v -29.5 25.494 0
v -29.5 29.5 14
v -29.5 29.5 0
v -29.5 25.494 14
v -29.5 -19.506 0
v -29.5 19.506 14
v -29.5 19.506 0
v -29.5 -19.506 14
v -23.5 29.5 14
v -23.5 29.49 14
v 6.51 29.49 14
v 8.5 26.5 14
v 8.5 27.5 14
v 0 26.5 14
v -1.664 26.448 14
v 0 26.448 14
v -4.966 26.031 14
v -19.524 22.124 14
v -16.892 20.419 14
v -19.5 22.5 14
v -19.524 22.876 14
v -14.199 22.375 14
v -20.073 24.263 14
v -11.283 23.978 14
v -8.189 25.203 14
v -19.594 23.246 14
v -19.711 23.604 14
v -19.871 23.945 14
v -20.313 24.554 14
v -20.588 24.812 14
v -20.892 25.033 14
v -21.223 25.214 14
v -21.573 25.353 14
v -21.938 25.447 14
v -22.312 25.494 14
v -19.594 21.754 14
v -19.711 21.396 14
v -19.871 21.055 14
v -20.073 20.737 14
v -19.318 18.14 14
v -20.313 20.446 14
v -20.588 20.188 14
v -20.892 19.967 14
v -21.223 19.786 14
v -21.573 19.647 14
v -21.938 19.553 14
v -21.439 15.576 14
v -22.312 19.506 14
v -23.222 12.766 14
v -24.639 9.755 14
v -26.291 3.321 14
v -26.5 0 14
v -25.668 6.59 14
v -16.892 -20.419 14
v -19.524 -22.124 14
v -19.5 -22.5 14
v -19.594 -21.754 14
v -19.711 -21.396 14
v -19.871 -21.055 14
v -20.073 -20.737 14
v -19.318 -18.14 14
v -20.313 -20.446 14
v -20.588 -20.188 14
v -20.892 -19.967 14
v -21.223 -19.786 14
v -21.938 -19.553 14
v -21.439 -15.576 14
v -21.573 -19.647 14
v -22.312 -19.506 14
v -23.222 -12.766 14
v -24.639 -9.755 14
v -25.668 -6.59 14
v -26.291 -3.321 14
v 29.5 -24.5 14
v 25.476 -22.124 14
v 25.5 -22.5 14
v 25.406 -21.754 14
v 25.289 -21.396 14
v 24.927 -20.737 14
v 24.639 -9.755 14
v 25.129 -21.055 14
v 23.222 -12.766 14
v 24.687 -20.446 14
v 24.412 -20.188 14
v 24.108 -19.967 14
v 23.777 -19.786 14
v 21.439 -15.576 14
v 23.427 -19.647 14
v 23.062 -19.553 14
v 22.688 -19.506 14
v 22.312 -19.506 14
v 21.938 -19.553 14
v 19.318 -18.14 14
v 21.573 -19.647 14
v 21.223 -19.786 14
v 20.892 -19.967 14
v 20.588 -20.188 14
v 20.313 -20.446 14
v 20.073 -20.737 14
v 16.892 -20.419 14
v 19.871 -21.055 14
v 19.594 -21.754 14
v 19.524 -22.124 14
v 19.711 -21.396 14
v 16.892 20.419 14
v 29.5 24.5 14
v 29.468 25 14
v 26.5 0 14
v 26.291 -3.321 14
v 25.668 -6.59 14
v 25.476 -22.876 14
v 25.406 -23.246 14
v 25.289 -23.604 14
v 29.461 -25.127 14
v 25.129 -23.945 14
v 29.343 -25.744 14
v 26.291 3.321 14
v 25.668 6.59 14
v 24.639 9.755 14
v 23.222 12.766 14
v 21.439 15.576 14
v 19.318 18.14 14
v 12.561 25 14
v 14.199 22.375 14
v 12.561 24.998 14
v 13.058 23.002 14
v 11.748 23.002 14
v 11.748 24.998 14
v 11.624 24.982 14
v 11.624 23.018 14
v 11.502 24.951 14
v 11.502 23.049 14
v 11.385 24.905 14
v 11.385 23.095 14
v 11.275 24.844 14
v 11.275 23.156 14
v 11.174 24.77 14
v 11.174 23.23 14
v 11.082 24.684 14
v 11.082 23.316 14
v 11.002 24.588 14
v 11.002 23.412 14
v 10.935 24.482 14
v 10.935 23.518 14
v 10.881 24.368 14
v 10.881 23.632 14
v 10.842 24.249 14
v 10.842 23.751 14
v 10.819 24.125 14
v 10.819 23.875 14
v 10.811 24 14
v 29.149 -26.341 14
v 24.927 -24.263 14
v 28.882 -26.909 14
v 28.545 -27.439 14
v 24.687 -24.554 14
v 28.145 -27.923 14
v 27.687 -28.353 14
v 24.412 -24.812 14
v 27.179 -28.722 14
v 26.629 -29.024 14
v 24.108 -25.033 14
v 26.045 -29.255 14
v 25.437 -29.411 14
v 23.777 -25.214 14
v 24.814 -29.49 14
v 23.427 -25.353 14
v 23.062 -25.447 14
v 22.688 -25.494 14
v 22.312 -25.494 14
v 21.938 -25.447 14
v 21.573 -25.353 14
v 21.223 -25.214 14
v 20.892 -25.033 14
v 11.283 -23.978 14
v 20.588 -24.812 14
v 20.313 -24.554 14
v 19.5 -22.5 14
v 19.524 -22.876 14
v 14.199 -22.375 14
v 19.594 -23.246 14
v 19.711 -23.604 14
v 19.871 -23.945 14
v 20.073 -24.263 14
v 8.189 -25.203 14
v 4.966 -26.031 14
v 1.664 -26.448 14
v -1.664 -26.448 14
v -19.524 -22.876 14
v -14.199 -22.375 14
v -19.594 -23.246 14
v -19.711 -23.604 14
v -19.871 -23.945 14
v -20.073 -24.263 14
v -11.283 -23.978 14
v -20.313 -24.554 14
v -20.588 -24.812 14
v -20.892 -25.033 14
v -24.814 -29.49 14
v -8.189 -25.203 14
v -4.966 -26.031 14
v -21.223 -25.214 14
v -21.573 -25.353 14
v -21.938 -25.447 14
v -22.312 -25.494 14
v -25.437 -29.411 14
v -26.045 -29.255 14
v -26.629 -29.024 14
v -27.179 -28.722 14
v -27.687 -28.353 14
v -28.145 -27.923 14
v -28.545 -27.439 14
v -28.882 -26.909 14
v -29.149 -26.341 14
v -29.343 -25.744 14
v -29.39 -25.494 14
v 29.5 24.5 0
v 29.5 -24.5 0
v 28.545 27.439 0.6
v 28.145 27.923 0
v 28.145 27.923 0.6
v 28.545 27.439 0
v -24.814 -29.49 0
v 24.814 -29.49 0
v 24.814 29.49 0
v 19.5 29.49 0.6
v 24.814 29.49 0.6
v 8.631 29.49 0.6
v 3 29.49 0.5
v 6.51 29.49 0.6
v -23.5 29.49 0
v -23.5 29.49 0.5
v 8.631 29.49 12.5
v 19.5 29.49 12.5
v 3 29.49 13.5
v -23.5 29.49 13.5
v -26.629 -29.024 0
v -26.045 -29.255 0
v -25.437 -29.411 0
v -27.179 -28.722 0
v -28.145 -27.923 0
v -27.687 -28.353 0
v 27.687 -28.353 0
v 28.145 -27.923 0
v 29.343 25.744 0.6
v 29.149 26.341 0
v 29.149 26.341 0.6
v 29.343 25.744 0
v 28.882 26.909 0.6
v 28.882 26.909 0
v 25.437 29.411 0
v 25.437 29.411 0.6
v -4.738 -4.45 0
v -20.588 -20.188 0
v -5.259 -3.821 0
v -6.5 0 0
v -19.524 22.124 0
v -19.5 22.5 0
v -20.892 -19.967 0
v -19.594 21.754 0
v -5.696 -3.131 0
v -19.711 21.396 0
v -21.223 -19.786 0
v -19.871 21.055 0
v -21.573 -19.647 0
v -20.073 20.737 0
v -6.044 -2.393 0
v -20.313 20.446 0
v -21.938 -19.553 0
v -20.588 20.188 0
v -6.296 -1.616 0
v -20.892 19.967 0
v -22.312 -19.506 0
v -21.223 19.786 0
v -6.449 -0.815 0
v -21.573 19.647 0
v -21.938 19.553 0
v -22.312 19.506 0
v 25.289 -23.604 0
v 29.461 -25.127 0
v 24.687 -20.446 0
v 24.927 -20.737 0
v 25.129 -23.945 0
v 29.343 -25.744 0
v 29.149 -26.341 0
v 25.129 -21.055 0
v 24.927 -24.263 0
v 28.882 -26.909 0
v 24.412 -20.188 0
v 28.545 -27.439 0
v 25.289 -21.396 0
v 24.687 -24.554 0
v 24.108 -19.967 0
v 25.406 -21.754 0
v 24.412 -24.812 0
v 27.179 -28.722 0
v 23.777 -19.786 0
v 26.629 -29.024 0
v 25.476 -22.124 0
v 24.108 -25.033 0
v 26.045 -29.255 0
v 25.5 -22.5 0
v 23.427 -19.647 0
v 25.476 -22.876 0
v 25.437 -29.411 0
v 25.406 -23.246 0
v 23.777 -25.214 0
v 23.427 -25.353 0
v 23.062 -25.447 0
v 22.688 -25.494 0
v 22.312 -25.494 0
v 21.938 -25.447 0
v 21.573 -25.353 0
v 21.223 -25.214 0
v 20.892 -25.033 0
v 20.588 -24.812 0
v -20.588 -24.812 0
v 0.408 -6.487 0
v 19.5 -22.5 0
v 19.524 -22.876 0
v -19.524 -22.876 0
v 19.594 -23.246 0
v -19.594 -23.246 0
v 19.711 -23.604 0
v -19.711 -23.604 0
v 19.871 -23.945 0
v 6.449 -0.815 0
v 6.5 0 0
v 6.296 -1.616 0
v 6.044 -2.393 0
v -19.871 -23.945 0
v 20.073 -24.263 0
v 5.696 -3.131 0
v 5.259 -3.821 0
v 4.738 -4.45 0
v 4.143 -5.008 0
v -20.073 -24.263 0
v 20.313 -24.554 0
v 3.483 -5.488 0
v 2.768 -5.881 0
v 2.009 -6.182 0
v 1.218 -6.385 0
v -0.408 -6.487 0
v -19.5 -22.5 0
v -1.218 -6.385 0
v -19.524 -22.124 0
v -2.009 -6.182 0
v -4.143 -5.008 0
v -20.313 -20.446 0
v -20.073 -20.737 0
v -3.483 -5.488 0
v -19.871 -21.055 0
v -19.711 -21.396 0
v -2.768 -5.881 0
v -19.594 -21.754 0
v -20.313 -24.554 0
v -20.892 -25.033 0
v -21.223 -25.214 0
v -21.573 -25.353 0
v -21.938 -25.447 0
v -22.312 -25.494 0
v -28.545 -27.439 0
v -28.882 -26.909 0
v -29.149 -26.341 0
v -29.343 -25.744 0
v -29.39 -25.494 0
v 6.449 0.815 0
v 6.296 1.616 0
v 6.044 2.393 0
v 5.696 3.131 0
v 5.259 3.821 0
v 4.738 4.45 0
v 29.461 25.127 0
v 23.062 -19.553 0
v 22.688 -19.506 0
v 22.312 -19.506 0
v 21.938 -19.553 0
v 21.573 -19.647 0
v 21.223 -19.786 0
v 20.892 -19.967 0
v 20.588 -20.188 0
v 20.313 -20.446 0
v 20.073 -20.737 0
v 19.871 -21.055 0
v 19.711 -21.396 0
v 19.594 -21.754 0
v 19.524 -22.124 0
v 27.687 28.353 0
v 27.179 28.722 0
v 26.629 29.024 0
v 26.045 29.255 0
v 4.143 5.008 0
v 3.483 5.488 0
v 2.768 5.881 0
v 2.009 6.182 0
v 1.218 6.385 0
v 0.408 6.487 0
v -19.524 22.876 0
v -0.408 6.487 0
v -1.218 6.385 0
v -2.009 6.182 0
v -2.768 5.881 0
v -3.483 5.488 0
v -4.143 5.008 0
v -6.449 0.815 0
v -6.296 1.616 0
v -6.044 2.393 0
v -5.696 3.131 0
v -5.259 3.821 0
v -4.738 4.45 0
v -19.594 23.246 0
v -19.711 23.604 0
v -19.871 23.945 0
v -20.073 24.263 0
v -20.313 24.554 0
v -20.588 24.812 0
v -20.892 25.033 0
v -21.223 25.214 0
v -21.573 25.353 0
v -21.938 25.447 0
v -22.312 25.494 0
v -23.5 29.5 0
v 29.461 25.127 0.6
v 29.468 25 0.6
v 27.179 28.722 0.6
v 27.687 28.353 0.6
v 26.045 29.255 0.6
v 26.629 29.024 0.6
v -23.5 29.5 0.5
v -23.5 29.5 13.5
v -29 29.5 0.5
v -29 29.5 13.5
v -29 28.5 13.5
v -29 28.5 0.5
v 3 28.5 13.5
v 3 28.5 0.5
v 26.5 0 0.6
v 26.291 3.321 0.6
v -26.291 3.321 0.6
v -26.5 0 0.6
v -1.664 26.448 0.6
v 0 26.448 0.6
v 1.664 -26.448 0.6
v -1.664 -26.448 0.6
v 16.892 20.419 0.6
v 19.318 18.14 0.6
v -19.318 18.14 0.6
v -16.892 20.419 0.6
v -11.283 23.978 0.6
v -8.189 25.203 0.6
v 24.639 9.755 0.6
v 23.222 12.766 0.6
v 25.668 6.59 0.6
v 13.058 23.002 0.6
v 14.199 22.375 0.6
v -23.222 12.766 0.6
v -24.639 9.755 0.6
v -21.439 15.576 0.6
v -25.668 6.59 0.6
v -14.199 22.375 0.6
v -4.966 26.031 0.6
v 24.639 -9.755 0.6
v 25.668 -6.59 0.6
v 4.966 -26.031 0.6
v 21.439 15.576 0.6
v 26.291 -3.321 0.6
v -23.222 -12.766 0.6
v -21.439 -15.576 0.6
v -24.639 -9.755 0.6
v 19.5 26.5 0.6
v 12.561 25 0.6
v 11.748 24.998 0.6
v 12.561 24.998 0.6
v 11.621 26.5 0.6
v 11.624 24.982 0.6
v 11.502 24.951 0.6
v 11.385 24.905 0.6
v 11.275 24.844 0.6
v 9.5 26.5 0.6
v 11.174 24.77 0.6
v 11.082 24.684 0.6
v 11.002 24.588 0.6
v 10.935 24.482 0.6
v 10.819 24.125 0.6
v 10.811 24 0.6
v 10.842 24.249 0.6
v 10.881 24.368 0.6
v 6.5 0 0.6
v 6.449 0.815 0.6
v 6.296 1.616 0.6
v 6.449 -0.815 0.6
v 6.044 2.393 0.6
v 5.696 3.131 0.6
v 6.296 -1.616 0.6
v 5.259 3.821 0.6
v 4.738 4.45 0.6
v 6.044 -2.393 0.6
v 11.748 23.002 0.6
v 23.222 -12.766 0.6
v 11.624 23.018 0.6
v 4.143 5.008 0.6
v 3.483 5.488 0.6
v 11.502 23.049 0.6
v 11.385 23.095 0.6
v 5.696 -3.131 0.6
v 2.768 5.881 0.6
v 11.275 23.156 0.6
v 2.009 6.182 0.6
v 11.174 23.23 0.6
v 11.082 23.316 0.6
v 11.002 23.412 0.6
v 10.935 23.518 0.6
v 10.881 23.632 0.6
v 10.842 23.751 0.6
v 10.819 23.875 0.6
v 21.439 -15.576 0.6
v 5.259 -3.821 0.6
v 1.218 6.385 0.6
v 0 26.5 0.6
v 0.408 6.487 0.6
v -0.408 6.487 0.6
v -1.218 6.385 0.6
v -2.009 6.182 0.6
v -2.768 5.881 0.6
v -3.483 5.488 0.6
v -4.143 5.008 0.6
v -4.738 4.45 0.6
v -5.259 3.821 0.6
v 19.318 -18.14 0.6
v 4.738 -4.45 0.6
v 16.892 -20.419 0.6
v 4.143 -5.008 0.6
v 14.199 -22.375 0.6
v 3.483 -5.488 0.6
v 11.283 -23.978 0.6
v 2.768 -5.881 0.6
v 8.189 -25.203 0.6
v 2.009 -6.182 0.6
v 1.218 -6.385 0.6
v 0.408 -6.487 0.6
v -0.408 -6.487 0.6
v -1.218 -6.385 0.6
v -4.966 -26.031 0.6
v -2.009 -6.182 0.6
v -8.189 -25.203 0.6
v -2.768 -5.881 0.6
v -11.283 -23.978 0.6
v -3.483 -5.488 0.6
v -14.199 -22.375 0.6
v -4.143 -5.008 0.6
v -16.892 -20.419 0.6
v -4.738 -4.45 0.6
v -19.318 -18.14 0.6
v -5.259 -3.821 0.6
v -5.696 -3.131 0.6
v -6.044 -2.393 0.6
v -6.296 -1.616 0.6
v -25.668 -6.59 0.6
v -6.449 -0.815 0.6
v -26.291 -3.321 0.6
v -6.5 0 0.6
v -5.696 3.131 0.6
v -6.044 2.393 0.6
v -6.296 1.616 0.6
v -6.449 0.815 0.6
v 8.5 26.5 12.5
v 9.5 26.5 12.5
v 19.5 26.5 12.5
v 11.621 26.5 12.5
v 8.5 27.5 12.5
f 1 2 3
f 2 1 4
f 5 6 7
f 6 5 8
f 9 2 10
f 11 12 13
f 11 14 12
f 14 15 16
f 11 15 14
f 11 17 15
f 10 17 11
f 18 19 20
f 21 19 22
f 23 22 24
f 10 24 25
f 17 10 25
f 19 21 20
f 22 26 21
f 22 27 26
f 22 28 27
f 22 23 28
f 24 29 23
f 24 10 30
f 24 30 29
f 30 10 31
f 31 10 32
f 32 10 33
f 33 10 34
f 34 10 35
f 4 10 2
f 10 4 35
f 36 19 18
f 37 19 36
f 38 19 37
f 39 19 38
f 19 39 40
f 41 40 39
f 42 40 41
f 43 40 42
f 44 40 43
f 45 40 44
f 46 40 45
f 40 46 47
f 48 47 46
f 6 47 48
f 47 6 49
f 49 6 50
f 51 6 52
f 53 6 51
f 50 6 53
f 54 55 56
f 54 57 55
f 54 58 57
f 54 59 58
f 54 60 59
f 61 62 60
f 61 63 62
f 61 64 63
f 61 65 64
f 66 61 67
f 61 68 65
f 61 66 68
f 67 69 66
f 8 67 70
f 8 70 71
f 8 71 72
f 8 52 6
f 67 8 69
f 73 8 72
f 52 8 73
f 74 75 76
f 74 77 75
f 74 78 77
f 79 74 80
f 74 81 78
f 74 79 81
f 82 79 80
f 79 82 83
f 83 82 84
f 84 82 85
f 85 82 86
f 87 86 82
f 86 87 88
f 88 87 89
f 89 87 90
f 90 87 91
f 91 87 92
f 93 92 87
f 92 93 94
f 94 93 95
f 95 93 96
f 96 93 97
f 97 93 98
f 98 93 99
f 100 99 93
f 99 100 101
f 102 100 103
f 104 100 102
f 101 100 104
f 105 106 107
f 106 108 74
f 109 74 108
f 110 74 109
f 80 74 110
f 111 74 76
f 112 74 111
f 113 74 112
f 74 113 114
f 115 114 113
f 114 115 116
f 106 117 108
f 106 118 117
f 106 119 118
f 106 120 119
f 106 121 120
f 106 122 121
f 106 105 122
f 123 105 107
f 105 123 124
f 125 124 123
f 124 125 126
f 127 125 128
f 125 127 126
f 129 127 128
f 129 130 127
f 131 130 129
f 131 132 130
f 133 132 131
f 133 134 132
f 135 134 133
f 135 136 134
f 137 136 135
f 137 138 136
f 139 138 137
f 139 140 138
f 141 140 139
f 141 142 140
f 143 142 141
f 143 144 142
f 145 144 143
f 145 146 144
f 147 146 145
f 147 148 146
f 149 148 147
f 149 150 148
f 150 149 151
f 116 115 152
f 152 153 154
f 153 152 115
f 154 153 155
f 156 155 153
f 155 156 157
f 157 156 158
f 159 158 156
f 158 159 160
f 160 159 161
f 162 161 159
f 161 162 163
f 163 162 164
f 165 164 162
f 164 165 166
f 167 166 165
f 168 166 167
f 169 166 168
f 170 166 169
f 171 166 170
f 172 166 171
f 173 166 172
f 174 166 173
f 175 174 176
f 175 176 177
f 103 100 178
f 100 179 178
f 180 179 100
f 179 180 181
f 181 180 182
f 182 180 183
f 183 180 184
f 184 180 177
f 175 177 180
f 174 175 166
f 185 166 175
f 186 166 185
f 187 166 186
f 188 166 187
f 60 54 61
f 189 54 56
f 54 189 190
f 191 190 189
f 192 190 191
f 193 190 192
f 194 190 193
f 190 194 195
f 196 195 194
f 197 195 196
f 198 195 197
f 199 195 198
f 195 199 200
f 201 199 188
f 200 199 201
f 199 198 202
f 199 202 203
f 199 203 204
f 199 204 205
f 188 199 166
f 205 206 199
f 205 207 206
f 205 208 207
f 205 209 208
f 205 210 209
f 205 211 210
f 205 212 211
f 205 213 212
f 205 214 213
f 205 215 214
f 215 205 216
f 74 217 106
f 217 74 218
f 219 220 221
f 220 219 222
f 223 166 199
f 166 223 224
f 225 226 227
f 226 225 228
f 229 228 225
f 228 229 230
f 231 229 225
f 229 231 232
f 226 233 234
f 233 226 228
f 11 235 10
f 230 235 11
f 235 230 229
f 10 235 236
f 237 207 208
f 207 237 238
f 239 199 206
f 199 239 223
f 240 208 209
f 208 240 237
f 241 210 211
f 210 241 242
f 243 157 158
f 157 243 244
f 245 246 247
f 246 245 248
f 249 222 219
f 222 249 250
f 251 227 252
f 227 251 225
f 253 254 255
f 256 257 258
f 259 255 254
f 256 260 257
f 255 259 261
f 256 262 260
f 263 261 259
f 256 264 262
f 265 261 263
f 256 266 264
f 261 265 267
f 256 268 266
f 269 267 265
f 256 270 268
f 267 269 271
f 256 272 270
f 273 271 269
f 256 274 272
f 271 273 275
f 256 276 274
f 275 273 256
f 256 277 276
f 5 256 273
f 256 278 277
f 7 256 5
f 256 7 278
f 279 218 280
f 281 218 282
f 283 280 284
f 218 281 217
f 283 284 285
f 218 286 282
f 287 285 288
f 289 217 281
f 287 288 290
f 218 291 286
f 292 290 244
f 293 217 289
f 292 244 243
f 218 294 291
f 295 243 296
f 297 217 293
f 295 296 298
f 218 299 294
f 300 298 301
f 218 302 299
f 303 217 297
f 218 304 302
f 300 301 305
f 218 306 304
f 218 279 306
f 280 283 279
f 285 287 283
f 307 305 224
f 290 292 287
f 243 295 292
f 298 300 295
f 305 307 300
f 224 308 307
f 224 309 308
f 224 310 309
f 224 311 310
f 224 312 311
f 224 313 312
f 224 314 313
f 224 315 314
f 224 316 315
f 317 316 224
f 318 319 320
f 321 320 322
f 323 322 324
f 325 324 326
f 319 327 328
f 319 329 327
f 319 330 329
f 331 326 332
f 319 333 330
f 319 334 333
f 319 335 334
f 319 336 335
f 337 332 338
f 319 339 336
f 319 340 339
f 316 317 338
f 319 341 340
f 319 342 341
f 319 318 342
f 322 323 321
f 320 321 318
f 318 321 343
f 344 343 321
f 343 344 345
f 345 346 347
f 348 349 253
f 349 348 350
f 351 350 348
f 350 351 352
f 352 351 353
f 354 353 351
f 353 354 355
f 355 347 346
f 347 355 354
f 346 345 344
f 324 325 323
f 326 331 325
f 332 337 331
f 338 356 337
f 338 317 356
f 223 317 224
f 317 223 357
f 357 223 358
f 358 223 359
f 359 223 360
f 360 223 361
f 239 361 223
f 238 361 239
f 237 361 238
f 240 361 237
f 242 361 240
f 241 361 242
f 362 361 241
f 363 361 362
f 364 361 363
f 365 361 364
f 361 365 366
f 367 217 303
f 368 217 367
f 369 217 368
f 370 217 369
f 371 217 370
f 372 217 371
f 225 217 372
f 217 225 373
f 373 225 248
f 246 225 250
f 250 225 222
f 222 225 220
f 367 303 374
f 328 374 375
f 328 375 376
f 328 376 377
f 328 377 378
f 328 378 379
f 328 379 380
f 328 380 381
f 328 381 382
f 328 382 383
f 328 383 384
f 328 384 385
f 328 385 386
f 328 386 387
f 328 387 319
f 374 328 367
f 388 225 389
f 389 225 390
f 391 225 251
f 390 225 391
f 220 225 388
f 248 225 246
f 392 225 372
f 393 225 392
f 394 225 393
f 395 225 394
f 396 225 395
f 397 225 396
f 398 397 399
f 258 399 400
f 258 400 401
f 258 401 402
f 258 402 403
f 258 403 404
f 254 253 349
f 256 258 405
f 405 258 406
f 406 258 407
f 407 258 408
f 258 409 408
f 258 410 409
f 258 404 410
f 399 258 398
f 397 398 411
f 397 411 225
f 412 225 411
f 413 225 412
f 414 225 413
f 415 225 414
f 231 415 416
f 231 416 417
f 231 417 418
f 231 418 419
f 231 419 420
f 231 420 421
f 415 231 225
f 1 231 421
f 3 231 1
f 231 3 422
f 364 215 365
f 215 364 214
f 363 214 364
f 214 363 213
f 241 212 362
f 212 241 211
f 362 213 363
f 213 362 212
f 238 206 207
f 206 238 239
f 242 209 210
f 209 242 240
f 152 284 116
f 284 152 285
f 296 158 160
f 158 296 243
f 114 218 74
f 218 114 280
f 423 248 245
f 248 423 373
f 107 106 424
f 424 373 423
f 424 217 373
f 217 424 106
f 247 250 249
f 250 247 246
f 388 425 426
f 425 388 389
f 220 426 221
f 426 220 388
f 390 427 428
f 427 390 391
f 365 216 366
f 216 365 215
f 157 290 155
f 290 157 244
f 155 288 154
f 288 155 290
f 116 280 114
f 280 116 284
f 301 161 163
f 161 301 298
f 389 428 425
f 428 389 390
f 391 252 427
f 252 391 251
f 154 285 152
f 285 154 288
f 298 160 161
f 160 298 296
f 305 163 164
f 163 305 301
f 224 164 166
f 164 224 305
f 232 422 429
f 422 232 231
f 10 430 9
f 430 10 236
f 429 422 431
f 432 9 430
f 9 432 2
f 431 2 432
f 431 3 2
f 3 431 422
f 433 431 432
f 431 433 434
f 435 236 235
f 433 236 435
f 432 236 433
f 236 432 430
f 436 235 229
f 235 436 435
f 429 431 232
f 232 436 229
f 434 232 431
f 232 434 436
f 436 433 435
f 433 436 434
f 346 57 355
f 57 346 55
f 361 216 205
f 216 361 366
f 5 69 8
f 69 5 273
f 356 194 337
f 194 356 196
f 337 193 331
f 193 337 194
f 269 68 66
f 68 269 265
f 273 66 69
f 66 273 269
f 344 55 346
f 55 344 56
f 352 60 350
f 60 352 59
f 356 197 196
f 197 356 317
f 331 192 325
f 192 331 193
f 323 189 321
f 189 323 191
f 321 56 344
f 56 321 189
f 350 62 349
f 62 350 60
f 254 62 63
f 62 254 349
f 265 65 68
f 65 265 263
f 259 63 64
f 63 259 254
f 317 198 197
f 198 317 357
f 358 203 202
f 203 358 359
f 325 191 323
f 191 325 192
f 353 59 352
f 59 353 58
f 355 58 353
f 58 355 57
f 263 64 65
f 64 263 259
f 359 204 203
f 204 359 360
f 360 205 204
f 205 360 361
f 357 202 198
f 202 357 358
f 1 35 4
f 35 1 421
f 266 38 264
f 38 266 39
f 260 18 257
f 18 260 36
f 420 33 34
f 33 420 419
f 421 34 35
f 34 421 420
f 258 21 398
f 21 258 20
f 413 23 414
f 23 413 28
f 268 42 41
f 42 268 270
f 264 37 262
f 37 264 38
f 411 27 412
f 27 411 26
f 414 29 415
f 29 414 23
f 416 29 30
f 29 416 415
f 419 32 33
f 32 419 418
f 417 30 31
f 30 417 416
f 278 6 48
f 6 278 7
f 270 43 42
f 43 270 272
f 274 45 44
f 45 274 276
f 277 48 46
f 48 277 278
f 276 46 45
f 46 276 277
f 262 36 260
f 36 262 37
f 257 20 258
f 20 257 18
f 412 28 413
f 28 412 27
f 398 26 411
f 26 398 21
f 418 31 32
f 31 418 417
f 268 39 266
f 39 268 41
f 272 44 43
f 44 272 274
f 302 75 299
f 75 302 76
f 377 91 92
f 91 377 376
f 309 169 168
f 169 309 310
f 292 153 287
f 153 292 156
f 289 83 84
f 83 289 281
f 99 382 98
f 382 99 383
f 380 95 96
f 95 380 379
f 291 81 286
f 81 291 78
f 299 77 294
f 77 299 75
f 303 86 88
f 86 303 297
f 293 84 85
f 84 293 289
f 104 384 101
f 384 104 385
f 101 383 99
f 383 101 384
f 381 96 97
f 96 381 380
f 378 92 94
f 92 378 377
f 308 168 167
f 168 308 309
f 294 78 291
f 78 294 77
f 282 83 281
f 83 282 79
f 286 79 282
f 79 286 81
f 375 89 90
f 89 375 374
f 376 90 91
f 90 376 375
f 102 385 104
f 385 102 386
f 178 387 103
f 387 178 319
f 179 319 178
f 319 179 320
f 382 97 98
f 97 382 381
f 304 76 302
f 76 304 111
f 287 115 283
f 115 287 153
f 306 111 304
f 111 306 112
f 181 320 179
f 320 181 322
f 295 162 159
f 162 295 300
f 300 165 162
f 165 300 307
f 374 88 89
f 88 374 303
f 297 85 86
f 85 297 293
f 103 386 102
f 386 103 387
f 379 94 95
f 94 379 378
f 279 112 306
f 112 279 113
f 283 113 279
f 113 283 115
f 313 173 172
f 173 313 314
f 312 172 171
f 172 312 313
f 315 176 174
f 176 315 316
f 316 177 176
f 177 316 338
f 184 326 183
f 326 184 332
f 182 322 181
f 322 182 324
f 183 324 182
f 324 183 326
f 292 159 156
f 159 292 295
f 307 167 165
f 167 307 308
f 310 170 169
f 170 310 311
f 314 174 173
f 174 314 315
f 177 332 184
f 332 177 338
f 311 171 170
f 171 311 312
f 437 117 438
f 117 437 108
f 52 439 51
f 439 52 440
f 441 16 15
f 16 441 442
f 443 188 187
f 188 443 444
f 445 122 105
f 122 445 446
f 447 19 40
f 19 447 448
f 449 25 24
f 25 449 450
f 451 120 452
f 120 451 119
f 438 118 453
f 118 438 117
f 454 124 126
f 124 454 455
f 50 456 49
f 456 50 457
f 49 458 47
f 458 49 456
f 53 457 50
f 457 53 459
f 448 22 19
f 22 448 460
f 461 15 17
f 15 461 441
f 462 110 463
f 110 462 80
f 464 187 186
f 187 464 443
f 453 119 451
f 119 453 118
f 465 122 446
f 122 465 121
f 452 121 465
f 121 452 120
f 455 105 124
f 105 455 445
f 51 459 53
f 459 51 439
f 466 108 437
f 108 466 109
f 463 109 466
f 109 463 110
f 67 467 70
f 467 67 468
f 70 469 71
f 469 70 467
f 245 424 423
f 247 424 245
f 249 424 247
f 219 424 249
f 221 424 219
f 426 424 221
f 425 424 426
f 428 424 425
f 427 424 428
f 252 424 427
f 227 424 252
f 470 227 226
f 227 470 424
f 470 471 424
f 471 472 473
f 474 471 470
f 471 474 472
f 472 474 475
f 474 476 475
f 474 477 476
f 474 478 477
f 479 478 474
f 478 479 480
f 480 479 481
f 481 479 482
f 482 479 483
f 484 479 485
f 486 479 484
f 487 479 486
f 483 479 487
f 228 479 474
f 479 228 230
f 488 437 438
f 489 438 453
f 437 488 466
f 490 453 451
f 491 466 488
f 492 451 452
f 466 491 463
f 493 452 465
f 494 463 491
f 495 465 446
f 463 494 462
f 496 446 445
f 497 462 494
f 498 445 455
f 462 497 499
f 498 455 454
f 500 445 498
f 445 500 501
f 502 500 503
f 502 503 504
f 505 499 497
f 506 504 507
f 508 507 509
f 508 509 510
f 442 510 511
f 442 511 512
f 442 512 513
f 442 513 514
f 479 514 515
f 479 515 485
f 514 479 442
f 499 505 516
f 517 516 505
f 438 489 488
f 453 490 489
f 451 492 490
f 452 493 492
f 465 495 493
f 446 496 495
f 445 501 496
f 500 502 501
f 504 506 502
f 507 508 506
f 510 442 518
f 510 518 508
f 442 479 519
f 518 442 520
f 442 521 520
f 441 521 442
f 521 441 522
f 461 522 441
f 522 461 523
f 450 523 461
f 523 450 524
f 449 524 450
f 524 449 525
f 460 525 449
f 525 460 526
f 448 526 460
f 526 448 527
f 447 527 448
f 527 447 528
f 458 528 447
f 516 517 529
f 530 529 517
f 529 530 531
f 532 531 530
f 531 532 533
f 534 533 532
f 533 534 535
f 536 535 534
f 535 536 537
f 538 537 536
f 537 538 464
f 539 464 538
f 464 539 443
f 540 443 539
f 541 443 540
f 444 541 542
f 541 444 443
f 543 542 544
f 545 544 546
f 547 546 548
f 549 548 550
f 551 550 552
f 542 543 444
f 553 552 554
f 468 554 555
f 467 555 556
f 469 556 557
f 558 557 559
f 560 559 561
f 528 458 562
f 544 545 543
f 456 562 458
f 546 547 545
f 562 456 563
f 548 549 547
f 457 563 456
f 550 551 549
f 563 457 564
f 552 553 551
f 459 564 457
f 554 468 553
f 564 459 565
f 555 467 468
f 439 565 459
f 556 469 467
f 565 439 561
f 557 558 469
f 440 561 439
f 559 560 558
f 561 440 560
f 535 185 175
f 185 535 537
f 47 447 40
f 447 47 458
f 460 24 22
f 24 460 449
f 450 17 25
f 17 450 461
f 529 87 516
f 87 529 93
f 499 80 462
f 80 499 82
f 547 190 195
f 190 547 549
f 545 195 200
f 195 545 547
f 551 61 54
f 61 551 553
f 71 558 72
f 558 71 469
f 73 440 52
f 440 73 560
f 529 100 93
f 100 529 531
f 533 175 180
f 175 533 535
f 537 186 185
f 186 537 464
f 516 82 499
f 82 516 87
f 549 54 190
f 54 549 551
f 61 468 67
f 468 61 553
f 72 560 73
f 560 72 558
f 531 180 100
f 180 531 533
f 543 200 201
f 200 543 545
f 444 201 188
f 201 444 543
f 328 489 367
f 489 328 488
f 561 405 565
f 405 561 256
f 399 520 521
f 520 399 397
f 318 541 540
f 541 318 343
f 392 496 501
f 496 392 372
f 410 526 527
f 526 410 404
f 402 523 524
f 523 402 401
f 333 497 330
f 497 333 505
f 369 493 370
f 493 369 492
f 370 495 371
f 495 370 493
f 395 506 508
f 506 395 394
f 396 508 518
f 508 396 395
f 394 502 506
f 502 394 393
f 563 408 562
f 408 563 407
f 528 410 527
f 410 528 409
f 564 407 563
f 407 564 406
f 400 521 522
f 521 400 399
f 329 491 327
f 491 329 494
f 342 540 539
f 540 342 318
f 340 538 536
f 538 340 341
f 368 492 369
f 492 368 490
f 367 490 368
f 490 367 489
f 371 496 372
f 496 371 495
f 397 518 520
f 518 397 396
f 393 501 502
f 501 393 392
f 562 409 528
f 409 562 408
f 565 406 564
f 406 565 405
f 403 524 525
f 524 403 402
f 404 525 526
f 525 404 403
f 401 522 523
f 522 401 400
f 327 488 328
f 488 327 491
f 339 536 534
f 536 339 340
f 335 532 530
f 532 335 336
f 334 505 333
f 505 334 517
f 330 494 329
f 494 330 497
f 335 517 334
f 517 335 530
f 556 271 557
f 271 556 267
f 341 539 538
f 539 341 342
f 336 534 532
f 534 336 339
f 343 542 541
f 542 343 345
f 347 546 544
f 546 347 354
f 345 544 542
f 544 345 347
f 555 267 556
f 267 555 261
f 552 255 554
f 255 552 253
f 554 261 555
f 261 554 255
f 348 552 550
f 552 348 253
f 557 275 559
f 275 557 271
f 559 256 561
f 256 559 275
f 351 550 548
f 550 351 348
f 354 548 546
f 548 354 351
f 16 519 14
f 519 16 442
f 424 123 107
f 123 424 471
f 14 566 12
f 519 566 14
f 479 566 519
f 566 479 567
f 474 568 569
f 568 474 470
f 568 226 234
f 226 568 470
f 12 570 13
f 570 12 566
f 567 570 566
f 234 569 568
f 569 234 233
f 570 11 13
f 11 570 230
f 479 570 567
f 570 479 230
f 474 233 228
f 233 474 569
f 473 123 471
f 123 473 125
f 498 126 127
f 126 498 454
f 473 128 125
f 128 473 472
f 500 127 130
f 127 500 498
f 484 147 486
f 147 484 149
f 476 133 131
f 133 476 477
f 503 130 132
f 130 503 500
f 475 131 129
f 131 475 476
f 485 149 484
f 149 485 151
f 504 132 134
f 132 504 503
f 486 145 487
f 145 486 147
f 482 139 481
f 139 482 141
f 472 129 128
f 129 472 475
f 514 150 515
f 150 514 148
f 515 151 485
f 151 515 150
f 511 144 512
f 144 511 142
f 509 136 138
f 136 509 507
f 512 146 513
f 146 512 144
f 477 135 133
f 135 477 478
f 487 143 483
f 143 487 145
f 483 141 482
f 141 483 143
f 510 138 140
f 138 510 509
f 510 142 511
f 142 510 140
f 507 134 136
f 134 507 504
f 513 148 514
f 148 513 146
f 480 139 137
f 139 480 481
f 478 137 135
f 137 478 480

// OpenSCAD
$fn = 50;


union() {
	difference() {
		union() {
			translate(v = [0, 0, 0]) {
				rotate(a = [0, 0, 0]) {
					hull() {
						translate(v = [-24.5000000000, 24.5000000000, 0]) {
							rotate(a = [0, 0, 0]) {
								translate(v = [0, 0, 0]) {
									rotate(a = [0, 0, 0]) {
										cylinder(h = 14, r = 5);
									}
								}
							}
						}
						translate(v = [24.5000000000, 24.5000000000, 0]) {
							rotate(a = [0, 0, 0]) {
								translate(v = [0, 0, 0]) {
									rotate(a = [0, 0, 0]) {
										cylinder(h = 14, r = 5);
									}
								}
							}
						}
						translate(v = [-24.5000000000, -24.5000000000, 0]) {
							rotate(a = [0, 0, 0]) {
								translate(v = [0, 0, 0]) {
									rotate(a = [0, 0, 0]) {
										cylinder(h = 14, r = 5);
									}
								}
							}
						}
						translate(v = [24.5000000000, -24.5000000000, 0]) {
							rotate(a = [0, 0, 0]) {
								translate(v = [0, 0, 0]) {
									rotate(a = [0, 0, 0]) {
										cylinder(h = 14, r = 5);
									}
								}
							}
						}
					}
				}
			}
			translate(v = [-29.5000000000, 23.5000000000, 0]) {
				rotate(a = [0, 0, 0]) {
					cube(size = [6, 6, 14]);
				}
			}
		}
		union() {
			#translate(v = [-29.0000000000, 28.5000000000, 0.5000000000]) {
				rotate(a = [0, 0, 0]) {
					cube(size = [32, 1, 13.0000000000]);
				}
			}
			translate(v = [-30.0000000000, -22.5000000000, -125]) {
				rotate(a = [0, 0, 0]) {
					hull() {
						translate(v = [7.5000000000, 0, 0]) {
							rotate(a = [0, 0, 0]) {
								translate(v = [0, 0, 0]) {
									rotate(a = [0, 0, 0]) {
										cylinder(h = 250, r = 3.0000000000);
									}
								}
							}
						}
						translate(v = [-7.5000000000, 0, 0]) {
							rotate(a = [0, 0, 0]) {
								translate(v = [0, 0, 0]) {
									rotate(a = [0, 0, 0]) {
										cylinder(h = 250, r = 3.0000000000);
									}
								}
							}
						}
					}
				}
			}
			translate(v = [-30.0000000000, 22.5000000000, -125]) {
				rotate(a = [0, 0, 0]) {
					hull() {
						translate(v = [7.5000000000, 0, 0]) {
							rotate(a = [0, 0, 0]) {
								translate(v = [0, 0, 0]) {
									rotate(a = [0, 0, 0]) {
										cylinder(h = 250, r = 3.0000000000);
									}
								}
							}
						}
						translate(v = [-7.5000000000, 0, 0]) {
							rotate(a = [0, 0, 0]) {
								translate(v = [0, 0, 0]) {
									rotate(a = [0, 0, 0]) {
										cylinder(h = 250, r = 3.0000000000);
									}
								}
							}
						}
					}
				}
			}
			translate(v = [22.5000000000, -22.5000000000, -125.0000000000]) {
				rotate(a = [0, 0, 0]) {
					cylinder(h = 250, r = 3.0000000000);
				}
			}
			translate(v = [0, 0, 0.6000000000]) {
				rotate(a = [0, 0, 0]) {
					cylinder(h = 16.4000000000, r = 26.5000000000);
				}
			}
			translate(v = [0, 0, -7.0000000000]) {
				rotate(a = [0, 0, 0]) {
					cylinder(h = 14, r = 6.5000000000);
				}
			}
			translate(v = [0.0000000000, 25.0000000000, 0.6000000000]) {
				rotate(a = [0, 0, 0]) {
					cube(size = [29.5000000000, 1.5000000000, 16.4000000000]);
				}
			}
			translate(v = [19.5000000000, 25.0000000000, 0.6000000000]) {
				rotate(a = [0, 0, 0]) {
					cube(size = [10, 4.5000000000, 16.4000000000]);
				}
			}
			translate(v = [8.5000000000, 25.0000000000, 12.5000000000]) {
				rotate(a = [0, 0, 0]) {
					cube(size = [21, 4.5000000000, 1.5000000000]);
				}
			}
			translate(v = [5.7500000000, 30.2500000000, 0.6000000000]) {
				rotate(a = [0, 0, -45]) {
					cube(size = [7.5000000000, 1.5000000000, 16.4000000000]);
				}
			}
			translate(v = [5.0610000000, 23.0000000000, 0.6000000000]) {
				rotate(a = [0, 0, 0]) {
					cube(size = [7.5000000000, 2, 13.4000000000]);
				}
			}
		}
	}
	union() {
		translate(v = [14.3110000000, 24.0000000000, 0]) {
			rotate(a = [0, 0, 0]) {
				hull() {
					translate(v = [2.5000000000, 0, 0]) {
						rotate(a = [0, 0, 0]) {
							#translate(v = [0, 0, 0]) {
								rotate(a = [0, 0, 0]) {
									cylinder(h = 14, r = 1.0000000000);
								}
							}
						}
					}
					translate(v = [-2.5000000000, 0, 0]) {
						rotate(a = [0, 0, 0]) {
							#translate(v = [0, 0, 0]) {
								rotate(a = [0, 0, 0]) {
									cylinder(h = 14, r = 1.0000000000);
								}
							}
						}
					}
				}
			}
		}
	}
}
